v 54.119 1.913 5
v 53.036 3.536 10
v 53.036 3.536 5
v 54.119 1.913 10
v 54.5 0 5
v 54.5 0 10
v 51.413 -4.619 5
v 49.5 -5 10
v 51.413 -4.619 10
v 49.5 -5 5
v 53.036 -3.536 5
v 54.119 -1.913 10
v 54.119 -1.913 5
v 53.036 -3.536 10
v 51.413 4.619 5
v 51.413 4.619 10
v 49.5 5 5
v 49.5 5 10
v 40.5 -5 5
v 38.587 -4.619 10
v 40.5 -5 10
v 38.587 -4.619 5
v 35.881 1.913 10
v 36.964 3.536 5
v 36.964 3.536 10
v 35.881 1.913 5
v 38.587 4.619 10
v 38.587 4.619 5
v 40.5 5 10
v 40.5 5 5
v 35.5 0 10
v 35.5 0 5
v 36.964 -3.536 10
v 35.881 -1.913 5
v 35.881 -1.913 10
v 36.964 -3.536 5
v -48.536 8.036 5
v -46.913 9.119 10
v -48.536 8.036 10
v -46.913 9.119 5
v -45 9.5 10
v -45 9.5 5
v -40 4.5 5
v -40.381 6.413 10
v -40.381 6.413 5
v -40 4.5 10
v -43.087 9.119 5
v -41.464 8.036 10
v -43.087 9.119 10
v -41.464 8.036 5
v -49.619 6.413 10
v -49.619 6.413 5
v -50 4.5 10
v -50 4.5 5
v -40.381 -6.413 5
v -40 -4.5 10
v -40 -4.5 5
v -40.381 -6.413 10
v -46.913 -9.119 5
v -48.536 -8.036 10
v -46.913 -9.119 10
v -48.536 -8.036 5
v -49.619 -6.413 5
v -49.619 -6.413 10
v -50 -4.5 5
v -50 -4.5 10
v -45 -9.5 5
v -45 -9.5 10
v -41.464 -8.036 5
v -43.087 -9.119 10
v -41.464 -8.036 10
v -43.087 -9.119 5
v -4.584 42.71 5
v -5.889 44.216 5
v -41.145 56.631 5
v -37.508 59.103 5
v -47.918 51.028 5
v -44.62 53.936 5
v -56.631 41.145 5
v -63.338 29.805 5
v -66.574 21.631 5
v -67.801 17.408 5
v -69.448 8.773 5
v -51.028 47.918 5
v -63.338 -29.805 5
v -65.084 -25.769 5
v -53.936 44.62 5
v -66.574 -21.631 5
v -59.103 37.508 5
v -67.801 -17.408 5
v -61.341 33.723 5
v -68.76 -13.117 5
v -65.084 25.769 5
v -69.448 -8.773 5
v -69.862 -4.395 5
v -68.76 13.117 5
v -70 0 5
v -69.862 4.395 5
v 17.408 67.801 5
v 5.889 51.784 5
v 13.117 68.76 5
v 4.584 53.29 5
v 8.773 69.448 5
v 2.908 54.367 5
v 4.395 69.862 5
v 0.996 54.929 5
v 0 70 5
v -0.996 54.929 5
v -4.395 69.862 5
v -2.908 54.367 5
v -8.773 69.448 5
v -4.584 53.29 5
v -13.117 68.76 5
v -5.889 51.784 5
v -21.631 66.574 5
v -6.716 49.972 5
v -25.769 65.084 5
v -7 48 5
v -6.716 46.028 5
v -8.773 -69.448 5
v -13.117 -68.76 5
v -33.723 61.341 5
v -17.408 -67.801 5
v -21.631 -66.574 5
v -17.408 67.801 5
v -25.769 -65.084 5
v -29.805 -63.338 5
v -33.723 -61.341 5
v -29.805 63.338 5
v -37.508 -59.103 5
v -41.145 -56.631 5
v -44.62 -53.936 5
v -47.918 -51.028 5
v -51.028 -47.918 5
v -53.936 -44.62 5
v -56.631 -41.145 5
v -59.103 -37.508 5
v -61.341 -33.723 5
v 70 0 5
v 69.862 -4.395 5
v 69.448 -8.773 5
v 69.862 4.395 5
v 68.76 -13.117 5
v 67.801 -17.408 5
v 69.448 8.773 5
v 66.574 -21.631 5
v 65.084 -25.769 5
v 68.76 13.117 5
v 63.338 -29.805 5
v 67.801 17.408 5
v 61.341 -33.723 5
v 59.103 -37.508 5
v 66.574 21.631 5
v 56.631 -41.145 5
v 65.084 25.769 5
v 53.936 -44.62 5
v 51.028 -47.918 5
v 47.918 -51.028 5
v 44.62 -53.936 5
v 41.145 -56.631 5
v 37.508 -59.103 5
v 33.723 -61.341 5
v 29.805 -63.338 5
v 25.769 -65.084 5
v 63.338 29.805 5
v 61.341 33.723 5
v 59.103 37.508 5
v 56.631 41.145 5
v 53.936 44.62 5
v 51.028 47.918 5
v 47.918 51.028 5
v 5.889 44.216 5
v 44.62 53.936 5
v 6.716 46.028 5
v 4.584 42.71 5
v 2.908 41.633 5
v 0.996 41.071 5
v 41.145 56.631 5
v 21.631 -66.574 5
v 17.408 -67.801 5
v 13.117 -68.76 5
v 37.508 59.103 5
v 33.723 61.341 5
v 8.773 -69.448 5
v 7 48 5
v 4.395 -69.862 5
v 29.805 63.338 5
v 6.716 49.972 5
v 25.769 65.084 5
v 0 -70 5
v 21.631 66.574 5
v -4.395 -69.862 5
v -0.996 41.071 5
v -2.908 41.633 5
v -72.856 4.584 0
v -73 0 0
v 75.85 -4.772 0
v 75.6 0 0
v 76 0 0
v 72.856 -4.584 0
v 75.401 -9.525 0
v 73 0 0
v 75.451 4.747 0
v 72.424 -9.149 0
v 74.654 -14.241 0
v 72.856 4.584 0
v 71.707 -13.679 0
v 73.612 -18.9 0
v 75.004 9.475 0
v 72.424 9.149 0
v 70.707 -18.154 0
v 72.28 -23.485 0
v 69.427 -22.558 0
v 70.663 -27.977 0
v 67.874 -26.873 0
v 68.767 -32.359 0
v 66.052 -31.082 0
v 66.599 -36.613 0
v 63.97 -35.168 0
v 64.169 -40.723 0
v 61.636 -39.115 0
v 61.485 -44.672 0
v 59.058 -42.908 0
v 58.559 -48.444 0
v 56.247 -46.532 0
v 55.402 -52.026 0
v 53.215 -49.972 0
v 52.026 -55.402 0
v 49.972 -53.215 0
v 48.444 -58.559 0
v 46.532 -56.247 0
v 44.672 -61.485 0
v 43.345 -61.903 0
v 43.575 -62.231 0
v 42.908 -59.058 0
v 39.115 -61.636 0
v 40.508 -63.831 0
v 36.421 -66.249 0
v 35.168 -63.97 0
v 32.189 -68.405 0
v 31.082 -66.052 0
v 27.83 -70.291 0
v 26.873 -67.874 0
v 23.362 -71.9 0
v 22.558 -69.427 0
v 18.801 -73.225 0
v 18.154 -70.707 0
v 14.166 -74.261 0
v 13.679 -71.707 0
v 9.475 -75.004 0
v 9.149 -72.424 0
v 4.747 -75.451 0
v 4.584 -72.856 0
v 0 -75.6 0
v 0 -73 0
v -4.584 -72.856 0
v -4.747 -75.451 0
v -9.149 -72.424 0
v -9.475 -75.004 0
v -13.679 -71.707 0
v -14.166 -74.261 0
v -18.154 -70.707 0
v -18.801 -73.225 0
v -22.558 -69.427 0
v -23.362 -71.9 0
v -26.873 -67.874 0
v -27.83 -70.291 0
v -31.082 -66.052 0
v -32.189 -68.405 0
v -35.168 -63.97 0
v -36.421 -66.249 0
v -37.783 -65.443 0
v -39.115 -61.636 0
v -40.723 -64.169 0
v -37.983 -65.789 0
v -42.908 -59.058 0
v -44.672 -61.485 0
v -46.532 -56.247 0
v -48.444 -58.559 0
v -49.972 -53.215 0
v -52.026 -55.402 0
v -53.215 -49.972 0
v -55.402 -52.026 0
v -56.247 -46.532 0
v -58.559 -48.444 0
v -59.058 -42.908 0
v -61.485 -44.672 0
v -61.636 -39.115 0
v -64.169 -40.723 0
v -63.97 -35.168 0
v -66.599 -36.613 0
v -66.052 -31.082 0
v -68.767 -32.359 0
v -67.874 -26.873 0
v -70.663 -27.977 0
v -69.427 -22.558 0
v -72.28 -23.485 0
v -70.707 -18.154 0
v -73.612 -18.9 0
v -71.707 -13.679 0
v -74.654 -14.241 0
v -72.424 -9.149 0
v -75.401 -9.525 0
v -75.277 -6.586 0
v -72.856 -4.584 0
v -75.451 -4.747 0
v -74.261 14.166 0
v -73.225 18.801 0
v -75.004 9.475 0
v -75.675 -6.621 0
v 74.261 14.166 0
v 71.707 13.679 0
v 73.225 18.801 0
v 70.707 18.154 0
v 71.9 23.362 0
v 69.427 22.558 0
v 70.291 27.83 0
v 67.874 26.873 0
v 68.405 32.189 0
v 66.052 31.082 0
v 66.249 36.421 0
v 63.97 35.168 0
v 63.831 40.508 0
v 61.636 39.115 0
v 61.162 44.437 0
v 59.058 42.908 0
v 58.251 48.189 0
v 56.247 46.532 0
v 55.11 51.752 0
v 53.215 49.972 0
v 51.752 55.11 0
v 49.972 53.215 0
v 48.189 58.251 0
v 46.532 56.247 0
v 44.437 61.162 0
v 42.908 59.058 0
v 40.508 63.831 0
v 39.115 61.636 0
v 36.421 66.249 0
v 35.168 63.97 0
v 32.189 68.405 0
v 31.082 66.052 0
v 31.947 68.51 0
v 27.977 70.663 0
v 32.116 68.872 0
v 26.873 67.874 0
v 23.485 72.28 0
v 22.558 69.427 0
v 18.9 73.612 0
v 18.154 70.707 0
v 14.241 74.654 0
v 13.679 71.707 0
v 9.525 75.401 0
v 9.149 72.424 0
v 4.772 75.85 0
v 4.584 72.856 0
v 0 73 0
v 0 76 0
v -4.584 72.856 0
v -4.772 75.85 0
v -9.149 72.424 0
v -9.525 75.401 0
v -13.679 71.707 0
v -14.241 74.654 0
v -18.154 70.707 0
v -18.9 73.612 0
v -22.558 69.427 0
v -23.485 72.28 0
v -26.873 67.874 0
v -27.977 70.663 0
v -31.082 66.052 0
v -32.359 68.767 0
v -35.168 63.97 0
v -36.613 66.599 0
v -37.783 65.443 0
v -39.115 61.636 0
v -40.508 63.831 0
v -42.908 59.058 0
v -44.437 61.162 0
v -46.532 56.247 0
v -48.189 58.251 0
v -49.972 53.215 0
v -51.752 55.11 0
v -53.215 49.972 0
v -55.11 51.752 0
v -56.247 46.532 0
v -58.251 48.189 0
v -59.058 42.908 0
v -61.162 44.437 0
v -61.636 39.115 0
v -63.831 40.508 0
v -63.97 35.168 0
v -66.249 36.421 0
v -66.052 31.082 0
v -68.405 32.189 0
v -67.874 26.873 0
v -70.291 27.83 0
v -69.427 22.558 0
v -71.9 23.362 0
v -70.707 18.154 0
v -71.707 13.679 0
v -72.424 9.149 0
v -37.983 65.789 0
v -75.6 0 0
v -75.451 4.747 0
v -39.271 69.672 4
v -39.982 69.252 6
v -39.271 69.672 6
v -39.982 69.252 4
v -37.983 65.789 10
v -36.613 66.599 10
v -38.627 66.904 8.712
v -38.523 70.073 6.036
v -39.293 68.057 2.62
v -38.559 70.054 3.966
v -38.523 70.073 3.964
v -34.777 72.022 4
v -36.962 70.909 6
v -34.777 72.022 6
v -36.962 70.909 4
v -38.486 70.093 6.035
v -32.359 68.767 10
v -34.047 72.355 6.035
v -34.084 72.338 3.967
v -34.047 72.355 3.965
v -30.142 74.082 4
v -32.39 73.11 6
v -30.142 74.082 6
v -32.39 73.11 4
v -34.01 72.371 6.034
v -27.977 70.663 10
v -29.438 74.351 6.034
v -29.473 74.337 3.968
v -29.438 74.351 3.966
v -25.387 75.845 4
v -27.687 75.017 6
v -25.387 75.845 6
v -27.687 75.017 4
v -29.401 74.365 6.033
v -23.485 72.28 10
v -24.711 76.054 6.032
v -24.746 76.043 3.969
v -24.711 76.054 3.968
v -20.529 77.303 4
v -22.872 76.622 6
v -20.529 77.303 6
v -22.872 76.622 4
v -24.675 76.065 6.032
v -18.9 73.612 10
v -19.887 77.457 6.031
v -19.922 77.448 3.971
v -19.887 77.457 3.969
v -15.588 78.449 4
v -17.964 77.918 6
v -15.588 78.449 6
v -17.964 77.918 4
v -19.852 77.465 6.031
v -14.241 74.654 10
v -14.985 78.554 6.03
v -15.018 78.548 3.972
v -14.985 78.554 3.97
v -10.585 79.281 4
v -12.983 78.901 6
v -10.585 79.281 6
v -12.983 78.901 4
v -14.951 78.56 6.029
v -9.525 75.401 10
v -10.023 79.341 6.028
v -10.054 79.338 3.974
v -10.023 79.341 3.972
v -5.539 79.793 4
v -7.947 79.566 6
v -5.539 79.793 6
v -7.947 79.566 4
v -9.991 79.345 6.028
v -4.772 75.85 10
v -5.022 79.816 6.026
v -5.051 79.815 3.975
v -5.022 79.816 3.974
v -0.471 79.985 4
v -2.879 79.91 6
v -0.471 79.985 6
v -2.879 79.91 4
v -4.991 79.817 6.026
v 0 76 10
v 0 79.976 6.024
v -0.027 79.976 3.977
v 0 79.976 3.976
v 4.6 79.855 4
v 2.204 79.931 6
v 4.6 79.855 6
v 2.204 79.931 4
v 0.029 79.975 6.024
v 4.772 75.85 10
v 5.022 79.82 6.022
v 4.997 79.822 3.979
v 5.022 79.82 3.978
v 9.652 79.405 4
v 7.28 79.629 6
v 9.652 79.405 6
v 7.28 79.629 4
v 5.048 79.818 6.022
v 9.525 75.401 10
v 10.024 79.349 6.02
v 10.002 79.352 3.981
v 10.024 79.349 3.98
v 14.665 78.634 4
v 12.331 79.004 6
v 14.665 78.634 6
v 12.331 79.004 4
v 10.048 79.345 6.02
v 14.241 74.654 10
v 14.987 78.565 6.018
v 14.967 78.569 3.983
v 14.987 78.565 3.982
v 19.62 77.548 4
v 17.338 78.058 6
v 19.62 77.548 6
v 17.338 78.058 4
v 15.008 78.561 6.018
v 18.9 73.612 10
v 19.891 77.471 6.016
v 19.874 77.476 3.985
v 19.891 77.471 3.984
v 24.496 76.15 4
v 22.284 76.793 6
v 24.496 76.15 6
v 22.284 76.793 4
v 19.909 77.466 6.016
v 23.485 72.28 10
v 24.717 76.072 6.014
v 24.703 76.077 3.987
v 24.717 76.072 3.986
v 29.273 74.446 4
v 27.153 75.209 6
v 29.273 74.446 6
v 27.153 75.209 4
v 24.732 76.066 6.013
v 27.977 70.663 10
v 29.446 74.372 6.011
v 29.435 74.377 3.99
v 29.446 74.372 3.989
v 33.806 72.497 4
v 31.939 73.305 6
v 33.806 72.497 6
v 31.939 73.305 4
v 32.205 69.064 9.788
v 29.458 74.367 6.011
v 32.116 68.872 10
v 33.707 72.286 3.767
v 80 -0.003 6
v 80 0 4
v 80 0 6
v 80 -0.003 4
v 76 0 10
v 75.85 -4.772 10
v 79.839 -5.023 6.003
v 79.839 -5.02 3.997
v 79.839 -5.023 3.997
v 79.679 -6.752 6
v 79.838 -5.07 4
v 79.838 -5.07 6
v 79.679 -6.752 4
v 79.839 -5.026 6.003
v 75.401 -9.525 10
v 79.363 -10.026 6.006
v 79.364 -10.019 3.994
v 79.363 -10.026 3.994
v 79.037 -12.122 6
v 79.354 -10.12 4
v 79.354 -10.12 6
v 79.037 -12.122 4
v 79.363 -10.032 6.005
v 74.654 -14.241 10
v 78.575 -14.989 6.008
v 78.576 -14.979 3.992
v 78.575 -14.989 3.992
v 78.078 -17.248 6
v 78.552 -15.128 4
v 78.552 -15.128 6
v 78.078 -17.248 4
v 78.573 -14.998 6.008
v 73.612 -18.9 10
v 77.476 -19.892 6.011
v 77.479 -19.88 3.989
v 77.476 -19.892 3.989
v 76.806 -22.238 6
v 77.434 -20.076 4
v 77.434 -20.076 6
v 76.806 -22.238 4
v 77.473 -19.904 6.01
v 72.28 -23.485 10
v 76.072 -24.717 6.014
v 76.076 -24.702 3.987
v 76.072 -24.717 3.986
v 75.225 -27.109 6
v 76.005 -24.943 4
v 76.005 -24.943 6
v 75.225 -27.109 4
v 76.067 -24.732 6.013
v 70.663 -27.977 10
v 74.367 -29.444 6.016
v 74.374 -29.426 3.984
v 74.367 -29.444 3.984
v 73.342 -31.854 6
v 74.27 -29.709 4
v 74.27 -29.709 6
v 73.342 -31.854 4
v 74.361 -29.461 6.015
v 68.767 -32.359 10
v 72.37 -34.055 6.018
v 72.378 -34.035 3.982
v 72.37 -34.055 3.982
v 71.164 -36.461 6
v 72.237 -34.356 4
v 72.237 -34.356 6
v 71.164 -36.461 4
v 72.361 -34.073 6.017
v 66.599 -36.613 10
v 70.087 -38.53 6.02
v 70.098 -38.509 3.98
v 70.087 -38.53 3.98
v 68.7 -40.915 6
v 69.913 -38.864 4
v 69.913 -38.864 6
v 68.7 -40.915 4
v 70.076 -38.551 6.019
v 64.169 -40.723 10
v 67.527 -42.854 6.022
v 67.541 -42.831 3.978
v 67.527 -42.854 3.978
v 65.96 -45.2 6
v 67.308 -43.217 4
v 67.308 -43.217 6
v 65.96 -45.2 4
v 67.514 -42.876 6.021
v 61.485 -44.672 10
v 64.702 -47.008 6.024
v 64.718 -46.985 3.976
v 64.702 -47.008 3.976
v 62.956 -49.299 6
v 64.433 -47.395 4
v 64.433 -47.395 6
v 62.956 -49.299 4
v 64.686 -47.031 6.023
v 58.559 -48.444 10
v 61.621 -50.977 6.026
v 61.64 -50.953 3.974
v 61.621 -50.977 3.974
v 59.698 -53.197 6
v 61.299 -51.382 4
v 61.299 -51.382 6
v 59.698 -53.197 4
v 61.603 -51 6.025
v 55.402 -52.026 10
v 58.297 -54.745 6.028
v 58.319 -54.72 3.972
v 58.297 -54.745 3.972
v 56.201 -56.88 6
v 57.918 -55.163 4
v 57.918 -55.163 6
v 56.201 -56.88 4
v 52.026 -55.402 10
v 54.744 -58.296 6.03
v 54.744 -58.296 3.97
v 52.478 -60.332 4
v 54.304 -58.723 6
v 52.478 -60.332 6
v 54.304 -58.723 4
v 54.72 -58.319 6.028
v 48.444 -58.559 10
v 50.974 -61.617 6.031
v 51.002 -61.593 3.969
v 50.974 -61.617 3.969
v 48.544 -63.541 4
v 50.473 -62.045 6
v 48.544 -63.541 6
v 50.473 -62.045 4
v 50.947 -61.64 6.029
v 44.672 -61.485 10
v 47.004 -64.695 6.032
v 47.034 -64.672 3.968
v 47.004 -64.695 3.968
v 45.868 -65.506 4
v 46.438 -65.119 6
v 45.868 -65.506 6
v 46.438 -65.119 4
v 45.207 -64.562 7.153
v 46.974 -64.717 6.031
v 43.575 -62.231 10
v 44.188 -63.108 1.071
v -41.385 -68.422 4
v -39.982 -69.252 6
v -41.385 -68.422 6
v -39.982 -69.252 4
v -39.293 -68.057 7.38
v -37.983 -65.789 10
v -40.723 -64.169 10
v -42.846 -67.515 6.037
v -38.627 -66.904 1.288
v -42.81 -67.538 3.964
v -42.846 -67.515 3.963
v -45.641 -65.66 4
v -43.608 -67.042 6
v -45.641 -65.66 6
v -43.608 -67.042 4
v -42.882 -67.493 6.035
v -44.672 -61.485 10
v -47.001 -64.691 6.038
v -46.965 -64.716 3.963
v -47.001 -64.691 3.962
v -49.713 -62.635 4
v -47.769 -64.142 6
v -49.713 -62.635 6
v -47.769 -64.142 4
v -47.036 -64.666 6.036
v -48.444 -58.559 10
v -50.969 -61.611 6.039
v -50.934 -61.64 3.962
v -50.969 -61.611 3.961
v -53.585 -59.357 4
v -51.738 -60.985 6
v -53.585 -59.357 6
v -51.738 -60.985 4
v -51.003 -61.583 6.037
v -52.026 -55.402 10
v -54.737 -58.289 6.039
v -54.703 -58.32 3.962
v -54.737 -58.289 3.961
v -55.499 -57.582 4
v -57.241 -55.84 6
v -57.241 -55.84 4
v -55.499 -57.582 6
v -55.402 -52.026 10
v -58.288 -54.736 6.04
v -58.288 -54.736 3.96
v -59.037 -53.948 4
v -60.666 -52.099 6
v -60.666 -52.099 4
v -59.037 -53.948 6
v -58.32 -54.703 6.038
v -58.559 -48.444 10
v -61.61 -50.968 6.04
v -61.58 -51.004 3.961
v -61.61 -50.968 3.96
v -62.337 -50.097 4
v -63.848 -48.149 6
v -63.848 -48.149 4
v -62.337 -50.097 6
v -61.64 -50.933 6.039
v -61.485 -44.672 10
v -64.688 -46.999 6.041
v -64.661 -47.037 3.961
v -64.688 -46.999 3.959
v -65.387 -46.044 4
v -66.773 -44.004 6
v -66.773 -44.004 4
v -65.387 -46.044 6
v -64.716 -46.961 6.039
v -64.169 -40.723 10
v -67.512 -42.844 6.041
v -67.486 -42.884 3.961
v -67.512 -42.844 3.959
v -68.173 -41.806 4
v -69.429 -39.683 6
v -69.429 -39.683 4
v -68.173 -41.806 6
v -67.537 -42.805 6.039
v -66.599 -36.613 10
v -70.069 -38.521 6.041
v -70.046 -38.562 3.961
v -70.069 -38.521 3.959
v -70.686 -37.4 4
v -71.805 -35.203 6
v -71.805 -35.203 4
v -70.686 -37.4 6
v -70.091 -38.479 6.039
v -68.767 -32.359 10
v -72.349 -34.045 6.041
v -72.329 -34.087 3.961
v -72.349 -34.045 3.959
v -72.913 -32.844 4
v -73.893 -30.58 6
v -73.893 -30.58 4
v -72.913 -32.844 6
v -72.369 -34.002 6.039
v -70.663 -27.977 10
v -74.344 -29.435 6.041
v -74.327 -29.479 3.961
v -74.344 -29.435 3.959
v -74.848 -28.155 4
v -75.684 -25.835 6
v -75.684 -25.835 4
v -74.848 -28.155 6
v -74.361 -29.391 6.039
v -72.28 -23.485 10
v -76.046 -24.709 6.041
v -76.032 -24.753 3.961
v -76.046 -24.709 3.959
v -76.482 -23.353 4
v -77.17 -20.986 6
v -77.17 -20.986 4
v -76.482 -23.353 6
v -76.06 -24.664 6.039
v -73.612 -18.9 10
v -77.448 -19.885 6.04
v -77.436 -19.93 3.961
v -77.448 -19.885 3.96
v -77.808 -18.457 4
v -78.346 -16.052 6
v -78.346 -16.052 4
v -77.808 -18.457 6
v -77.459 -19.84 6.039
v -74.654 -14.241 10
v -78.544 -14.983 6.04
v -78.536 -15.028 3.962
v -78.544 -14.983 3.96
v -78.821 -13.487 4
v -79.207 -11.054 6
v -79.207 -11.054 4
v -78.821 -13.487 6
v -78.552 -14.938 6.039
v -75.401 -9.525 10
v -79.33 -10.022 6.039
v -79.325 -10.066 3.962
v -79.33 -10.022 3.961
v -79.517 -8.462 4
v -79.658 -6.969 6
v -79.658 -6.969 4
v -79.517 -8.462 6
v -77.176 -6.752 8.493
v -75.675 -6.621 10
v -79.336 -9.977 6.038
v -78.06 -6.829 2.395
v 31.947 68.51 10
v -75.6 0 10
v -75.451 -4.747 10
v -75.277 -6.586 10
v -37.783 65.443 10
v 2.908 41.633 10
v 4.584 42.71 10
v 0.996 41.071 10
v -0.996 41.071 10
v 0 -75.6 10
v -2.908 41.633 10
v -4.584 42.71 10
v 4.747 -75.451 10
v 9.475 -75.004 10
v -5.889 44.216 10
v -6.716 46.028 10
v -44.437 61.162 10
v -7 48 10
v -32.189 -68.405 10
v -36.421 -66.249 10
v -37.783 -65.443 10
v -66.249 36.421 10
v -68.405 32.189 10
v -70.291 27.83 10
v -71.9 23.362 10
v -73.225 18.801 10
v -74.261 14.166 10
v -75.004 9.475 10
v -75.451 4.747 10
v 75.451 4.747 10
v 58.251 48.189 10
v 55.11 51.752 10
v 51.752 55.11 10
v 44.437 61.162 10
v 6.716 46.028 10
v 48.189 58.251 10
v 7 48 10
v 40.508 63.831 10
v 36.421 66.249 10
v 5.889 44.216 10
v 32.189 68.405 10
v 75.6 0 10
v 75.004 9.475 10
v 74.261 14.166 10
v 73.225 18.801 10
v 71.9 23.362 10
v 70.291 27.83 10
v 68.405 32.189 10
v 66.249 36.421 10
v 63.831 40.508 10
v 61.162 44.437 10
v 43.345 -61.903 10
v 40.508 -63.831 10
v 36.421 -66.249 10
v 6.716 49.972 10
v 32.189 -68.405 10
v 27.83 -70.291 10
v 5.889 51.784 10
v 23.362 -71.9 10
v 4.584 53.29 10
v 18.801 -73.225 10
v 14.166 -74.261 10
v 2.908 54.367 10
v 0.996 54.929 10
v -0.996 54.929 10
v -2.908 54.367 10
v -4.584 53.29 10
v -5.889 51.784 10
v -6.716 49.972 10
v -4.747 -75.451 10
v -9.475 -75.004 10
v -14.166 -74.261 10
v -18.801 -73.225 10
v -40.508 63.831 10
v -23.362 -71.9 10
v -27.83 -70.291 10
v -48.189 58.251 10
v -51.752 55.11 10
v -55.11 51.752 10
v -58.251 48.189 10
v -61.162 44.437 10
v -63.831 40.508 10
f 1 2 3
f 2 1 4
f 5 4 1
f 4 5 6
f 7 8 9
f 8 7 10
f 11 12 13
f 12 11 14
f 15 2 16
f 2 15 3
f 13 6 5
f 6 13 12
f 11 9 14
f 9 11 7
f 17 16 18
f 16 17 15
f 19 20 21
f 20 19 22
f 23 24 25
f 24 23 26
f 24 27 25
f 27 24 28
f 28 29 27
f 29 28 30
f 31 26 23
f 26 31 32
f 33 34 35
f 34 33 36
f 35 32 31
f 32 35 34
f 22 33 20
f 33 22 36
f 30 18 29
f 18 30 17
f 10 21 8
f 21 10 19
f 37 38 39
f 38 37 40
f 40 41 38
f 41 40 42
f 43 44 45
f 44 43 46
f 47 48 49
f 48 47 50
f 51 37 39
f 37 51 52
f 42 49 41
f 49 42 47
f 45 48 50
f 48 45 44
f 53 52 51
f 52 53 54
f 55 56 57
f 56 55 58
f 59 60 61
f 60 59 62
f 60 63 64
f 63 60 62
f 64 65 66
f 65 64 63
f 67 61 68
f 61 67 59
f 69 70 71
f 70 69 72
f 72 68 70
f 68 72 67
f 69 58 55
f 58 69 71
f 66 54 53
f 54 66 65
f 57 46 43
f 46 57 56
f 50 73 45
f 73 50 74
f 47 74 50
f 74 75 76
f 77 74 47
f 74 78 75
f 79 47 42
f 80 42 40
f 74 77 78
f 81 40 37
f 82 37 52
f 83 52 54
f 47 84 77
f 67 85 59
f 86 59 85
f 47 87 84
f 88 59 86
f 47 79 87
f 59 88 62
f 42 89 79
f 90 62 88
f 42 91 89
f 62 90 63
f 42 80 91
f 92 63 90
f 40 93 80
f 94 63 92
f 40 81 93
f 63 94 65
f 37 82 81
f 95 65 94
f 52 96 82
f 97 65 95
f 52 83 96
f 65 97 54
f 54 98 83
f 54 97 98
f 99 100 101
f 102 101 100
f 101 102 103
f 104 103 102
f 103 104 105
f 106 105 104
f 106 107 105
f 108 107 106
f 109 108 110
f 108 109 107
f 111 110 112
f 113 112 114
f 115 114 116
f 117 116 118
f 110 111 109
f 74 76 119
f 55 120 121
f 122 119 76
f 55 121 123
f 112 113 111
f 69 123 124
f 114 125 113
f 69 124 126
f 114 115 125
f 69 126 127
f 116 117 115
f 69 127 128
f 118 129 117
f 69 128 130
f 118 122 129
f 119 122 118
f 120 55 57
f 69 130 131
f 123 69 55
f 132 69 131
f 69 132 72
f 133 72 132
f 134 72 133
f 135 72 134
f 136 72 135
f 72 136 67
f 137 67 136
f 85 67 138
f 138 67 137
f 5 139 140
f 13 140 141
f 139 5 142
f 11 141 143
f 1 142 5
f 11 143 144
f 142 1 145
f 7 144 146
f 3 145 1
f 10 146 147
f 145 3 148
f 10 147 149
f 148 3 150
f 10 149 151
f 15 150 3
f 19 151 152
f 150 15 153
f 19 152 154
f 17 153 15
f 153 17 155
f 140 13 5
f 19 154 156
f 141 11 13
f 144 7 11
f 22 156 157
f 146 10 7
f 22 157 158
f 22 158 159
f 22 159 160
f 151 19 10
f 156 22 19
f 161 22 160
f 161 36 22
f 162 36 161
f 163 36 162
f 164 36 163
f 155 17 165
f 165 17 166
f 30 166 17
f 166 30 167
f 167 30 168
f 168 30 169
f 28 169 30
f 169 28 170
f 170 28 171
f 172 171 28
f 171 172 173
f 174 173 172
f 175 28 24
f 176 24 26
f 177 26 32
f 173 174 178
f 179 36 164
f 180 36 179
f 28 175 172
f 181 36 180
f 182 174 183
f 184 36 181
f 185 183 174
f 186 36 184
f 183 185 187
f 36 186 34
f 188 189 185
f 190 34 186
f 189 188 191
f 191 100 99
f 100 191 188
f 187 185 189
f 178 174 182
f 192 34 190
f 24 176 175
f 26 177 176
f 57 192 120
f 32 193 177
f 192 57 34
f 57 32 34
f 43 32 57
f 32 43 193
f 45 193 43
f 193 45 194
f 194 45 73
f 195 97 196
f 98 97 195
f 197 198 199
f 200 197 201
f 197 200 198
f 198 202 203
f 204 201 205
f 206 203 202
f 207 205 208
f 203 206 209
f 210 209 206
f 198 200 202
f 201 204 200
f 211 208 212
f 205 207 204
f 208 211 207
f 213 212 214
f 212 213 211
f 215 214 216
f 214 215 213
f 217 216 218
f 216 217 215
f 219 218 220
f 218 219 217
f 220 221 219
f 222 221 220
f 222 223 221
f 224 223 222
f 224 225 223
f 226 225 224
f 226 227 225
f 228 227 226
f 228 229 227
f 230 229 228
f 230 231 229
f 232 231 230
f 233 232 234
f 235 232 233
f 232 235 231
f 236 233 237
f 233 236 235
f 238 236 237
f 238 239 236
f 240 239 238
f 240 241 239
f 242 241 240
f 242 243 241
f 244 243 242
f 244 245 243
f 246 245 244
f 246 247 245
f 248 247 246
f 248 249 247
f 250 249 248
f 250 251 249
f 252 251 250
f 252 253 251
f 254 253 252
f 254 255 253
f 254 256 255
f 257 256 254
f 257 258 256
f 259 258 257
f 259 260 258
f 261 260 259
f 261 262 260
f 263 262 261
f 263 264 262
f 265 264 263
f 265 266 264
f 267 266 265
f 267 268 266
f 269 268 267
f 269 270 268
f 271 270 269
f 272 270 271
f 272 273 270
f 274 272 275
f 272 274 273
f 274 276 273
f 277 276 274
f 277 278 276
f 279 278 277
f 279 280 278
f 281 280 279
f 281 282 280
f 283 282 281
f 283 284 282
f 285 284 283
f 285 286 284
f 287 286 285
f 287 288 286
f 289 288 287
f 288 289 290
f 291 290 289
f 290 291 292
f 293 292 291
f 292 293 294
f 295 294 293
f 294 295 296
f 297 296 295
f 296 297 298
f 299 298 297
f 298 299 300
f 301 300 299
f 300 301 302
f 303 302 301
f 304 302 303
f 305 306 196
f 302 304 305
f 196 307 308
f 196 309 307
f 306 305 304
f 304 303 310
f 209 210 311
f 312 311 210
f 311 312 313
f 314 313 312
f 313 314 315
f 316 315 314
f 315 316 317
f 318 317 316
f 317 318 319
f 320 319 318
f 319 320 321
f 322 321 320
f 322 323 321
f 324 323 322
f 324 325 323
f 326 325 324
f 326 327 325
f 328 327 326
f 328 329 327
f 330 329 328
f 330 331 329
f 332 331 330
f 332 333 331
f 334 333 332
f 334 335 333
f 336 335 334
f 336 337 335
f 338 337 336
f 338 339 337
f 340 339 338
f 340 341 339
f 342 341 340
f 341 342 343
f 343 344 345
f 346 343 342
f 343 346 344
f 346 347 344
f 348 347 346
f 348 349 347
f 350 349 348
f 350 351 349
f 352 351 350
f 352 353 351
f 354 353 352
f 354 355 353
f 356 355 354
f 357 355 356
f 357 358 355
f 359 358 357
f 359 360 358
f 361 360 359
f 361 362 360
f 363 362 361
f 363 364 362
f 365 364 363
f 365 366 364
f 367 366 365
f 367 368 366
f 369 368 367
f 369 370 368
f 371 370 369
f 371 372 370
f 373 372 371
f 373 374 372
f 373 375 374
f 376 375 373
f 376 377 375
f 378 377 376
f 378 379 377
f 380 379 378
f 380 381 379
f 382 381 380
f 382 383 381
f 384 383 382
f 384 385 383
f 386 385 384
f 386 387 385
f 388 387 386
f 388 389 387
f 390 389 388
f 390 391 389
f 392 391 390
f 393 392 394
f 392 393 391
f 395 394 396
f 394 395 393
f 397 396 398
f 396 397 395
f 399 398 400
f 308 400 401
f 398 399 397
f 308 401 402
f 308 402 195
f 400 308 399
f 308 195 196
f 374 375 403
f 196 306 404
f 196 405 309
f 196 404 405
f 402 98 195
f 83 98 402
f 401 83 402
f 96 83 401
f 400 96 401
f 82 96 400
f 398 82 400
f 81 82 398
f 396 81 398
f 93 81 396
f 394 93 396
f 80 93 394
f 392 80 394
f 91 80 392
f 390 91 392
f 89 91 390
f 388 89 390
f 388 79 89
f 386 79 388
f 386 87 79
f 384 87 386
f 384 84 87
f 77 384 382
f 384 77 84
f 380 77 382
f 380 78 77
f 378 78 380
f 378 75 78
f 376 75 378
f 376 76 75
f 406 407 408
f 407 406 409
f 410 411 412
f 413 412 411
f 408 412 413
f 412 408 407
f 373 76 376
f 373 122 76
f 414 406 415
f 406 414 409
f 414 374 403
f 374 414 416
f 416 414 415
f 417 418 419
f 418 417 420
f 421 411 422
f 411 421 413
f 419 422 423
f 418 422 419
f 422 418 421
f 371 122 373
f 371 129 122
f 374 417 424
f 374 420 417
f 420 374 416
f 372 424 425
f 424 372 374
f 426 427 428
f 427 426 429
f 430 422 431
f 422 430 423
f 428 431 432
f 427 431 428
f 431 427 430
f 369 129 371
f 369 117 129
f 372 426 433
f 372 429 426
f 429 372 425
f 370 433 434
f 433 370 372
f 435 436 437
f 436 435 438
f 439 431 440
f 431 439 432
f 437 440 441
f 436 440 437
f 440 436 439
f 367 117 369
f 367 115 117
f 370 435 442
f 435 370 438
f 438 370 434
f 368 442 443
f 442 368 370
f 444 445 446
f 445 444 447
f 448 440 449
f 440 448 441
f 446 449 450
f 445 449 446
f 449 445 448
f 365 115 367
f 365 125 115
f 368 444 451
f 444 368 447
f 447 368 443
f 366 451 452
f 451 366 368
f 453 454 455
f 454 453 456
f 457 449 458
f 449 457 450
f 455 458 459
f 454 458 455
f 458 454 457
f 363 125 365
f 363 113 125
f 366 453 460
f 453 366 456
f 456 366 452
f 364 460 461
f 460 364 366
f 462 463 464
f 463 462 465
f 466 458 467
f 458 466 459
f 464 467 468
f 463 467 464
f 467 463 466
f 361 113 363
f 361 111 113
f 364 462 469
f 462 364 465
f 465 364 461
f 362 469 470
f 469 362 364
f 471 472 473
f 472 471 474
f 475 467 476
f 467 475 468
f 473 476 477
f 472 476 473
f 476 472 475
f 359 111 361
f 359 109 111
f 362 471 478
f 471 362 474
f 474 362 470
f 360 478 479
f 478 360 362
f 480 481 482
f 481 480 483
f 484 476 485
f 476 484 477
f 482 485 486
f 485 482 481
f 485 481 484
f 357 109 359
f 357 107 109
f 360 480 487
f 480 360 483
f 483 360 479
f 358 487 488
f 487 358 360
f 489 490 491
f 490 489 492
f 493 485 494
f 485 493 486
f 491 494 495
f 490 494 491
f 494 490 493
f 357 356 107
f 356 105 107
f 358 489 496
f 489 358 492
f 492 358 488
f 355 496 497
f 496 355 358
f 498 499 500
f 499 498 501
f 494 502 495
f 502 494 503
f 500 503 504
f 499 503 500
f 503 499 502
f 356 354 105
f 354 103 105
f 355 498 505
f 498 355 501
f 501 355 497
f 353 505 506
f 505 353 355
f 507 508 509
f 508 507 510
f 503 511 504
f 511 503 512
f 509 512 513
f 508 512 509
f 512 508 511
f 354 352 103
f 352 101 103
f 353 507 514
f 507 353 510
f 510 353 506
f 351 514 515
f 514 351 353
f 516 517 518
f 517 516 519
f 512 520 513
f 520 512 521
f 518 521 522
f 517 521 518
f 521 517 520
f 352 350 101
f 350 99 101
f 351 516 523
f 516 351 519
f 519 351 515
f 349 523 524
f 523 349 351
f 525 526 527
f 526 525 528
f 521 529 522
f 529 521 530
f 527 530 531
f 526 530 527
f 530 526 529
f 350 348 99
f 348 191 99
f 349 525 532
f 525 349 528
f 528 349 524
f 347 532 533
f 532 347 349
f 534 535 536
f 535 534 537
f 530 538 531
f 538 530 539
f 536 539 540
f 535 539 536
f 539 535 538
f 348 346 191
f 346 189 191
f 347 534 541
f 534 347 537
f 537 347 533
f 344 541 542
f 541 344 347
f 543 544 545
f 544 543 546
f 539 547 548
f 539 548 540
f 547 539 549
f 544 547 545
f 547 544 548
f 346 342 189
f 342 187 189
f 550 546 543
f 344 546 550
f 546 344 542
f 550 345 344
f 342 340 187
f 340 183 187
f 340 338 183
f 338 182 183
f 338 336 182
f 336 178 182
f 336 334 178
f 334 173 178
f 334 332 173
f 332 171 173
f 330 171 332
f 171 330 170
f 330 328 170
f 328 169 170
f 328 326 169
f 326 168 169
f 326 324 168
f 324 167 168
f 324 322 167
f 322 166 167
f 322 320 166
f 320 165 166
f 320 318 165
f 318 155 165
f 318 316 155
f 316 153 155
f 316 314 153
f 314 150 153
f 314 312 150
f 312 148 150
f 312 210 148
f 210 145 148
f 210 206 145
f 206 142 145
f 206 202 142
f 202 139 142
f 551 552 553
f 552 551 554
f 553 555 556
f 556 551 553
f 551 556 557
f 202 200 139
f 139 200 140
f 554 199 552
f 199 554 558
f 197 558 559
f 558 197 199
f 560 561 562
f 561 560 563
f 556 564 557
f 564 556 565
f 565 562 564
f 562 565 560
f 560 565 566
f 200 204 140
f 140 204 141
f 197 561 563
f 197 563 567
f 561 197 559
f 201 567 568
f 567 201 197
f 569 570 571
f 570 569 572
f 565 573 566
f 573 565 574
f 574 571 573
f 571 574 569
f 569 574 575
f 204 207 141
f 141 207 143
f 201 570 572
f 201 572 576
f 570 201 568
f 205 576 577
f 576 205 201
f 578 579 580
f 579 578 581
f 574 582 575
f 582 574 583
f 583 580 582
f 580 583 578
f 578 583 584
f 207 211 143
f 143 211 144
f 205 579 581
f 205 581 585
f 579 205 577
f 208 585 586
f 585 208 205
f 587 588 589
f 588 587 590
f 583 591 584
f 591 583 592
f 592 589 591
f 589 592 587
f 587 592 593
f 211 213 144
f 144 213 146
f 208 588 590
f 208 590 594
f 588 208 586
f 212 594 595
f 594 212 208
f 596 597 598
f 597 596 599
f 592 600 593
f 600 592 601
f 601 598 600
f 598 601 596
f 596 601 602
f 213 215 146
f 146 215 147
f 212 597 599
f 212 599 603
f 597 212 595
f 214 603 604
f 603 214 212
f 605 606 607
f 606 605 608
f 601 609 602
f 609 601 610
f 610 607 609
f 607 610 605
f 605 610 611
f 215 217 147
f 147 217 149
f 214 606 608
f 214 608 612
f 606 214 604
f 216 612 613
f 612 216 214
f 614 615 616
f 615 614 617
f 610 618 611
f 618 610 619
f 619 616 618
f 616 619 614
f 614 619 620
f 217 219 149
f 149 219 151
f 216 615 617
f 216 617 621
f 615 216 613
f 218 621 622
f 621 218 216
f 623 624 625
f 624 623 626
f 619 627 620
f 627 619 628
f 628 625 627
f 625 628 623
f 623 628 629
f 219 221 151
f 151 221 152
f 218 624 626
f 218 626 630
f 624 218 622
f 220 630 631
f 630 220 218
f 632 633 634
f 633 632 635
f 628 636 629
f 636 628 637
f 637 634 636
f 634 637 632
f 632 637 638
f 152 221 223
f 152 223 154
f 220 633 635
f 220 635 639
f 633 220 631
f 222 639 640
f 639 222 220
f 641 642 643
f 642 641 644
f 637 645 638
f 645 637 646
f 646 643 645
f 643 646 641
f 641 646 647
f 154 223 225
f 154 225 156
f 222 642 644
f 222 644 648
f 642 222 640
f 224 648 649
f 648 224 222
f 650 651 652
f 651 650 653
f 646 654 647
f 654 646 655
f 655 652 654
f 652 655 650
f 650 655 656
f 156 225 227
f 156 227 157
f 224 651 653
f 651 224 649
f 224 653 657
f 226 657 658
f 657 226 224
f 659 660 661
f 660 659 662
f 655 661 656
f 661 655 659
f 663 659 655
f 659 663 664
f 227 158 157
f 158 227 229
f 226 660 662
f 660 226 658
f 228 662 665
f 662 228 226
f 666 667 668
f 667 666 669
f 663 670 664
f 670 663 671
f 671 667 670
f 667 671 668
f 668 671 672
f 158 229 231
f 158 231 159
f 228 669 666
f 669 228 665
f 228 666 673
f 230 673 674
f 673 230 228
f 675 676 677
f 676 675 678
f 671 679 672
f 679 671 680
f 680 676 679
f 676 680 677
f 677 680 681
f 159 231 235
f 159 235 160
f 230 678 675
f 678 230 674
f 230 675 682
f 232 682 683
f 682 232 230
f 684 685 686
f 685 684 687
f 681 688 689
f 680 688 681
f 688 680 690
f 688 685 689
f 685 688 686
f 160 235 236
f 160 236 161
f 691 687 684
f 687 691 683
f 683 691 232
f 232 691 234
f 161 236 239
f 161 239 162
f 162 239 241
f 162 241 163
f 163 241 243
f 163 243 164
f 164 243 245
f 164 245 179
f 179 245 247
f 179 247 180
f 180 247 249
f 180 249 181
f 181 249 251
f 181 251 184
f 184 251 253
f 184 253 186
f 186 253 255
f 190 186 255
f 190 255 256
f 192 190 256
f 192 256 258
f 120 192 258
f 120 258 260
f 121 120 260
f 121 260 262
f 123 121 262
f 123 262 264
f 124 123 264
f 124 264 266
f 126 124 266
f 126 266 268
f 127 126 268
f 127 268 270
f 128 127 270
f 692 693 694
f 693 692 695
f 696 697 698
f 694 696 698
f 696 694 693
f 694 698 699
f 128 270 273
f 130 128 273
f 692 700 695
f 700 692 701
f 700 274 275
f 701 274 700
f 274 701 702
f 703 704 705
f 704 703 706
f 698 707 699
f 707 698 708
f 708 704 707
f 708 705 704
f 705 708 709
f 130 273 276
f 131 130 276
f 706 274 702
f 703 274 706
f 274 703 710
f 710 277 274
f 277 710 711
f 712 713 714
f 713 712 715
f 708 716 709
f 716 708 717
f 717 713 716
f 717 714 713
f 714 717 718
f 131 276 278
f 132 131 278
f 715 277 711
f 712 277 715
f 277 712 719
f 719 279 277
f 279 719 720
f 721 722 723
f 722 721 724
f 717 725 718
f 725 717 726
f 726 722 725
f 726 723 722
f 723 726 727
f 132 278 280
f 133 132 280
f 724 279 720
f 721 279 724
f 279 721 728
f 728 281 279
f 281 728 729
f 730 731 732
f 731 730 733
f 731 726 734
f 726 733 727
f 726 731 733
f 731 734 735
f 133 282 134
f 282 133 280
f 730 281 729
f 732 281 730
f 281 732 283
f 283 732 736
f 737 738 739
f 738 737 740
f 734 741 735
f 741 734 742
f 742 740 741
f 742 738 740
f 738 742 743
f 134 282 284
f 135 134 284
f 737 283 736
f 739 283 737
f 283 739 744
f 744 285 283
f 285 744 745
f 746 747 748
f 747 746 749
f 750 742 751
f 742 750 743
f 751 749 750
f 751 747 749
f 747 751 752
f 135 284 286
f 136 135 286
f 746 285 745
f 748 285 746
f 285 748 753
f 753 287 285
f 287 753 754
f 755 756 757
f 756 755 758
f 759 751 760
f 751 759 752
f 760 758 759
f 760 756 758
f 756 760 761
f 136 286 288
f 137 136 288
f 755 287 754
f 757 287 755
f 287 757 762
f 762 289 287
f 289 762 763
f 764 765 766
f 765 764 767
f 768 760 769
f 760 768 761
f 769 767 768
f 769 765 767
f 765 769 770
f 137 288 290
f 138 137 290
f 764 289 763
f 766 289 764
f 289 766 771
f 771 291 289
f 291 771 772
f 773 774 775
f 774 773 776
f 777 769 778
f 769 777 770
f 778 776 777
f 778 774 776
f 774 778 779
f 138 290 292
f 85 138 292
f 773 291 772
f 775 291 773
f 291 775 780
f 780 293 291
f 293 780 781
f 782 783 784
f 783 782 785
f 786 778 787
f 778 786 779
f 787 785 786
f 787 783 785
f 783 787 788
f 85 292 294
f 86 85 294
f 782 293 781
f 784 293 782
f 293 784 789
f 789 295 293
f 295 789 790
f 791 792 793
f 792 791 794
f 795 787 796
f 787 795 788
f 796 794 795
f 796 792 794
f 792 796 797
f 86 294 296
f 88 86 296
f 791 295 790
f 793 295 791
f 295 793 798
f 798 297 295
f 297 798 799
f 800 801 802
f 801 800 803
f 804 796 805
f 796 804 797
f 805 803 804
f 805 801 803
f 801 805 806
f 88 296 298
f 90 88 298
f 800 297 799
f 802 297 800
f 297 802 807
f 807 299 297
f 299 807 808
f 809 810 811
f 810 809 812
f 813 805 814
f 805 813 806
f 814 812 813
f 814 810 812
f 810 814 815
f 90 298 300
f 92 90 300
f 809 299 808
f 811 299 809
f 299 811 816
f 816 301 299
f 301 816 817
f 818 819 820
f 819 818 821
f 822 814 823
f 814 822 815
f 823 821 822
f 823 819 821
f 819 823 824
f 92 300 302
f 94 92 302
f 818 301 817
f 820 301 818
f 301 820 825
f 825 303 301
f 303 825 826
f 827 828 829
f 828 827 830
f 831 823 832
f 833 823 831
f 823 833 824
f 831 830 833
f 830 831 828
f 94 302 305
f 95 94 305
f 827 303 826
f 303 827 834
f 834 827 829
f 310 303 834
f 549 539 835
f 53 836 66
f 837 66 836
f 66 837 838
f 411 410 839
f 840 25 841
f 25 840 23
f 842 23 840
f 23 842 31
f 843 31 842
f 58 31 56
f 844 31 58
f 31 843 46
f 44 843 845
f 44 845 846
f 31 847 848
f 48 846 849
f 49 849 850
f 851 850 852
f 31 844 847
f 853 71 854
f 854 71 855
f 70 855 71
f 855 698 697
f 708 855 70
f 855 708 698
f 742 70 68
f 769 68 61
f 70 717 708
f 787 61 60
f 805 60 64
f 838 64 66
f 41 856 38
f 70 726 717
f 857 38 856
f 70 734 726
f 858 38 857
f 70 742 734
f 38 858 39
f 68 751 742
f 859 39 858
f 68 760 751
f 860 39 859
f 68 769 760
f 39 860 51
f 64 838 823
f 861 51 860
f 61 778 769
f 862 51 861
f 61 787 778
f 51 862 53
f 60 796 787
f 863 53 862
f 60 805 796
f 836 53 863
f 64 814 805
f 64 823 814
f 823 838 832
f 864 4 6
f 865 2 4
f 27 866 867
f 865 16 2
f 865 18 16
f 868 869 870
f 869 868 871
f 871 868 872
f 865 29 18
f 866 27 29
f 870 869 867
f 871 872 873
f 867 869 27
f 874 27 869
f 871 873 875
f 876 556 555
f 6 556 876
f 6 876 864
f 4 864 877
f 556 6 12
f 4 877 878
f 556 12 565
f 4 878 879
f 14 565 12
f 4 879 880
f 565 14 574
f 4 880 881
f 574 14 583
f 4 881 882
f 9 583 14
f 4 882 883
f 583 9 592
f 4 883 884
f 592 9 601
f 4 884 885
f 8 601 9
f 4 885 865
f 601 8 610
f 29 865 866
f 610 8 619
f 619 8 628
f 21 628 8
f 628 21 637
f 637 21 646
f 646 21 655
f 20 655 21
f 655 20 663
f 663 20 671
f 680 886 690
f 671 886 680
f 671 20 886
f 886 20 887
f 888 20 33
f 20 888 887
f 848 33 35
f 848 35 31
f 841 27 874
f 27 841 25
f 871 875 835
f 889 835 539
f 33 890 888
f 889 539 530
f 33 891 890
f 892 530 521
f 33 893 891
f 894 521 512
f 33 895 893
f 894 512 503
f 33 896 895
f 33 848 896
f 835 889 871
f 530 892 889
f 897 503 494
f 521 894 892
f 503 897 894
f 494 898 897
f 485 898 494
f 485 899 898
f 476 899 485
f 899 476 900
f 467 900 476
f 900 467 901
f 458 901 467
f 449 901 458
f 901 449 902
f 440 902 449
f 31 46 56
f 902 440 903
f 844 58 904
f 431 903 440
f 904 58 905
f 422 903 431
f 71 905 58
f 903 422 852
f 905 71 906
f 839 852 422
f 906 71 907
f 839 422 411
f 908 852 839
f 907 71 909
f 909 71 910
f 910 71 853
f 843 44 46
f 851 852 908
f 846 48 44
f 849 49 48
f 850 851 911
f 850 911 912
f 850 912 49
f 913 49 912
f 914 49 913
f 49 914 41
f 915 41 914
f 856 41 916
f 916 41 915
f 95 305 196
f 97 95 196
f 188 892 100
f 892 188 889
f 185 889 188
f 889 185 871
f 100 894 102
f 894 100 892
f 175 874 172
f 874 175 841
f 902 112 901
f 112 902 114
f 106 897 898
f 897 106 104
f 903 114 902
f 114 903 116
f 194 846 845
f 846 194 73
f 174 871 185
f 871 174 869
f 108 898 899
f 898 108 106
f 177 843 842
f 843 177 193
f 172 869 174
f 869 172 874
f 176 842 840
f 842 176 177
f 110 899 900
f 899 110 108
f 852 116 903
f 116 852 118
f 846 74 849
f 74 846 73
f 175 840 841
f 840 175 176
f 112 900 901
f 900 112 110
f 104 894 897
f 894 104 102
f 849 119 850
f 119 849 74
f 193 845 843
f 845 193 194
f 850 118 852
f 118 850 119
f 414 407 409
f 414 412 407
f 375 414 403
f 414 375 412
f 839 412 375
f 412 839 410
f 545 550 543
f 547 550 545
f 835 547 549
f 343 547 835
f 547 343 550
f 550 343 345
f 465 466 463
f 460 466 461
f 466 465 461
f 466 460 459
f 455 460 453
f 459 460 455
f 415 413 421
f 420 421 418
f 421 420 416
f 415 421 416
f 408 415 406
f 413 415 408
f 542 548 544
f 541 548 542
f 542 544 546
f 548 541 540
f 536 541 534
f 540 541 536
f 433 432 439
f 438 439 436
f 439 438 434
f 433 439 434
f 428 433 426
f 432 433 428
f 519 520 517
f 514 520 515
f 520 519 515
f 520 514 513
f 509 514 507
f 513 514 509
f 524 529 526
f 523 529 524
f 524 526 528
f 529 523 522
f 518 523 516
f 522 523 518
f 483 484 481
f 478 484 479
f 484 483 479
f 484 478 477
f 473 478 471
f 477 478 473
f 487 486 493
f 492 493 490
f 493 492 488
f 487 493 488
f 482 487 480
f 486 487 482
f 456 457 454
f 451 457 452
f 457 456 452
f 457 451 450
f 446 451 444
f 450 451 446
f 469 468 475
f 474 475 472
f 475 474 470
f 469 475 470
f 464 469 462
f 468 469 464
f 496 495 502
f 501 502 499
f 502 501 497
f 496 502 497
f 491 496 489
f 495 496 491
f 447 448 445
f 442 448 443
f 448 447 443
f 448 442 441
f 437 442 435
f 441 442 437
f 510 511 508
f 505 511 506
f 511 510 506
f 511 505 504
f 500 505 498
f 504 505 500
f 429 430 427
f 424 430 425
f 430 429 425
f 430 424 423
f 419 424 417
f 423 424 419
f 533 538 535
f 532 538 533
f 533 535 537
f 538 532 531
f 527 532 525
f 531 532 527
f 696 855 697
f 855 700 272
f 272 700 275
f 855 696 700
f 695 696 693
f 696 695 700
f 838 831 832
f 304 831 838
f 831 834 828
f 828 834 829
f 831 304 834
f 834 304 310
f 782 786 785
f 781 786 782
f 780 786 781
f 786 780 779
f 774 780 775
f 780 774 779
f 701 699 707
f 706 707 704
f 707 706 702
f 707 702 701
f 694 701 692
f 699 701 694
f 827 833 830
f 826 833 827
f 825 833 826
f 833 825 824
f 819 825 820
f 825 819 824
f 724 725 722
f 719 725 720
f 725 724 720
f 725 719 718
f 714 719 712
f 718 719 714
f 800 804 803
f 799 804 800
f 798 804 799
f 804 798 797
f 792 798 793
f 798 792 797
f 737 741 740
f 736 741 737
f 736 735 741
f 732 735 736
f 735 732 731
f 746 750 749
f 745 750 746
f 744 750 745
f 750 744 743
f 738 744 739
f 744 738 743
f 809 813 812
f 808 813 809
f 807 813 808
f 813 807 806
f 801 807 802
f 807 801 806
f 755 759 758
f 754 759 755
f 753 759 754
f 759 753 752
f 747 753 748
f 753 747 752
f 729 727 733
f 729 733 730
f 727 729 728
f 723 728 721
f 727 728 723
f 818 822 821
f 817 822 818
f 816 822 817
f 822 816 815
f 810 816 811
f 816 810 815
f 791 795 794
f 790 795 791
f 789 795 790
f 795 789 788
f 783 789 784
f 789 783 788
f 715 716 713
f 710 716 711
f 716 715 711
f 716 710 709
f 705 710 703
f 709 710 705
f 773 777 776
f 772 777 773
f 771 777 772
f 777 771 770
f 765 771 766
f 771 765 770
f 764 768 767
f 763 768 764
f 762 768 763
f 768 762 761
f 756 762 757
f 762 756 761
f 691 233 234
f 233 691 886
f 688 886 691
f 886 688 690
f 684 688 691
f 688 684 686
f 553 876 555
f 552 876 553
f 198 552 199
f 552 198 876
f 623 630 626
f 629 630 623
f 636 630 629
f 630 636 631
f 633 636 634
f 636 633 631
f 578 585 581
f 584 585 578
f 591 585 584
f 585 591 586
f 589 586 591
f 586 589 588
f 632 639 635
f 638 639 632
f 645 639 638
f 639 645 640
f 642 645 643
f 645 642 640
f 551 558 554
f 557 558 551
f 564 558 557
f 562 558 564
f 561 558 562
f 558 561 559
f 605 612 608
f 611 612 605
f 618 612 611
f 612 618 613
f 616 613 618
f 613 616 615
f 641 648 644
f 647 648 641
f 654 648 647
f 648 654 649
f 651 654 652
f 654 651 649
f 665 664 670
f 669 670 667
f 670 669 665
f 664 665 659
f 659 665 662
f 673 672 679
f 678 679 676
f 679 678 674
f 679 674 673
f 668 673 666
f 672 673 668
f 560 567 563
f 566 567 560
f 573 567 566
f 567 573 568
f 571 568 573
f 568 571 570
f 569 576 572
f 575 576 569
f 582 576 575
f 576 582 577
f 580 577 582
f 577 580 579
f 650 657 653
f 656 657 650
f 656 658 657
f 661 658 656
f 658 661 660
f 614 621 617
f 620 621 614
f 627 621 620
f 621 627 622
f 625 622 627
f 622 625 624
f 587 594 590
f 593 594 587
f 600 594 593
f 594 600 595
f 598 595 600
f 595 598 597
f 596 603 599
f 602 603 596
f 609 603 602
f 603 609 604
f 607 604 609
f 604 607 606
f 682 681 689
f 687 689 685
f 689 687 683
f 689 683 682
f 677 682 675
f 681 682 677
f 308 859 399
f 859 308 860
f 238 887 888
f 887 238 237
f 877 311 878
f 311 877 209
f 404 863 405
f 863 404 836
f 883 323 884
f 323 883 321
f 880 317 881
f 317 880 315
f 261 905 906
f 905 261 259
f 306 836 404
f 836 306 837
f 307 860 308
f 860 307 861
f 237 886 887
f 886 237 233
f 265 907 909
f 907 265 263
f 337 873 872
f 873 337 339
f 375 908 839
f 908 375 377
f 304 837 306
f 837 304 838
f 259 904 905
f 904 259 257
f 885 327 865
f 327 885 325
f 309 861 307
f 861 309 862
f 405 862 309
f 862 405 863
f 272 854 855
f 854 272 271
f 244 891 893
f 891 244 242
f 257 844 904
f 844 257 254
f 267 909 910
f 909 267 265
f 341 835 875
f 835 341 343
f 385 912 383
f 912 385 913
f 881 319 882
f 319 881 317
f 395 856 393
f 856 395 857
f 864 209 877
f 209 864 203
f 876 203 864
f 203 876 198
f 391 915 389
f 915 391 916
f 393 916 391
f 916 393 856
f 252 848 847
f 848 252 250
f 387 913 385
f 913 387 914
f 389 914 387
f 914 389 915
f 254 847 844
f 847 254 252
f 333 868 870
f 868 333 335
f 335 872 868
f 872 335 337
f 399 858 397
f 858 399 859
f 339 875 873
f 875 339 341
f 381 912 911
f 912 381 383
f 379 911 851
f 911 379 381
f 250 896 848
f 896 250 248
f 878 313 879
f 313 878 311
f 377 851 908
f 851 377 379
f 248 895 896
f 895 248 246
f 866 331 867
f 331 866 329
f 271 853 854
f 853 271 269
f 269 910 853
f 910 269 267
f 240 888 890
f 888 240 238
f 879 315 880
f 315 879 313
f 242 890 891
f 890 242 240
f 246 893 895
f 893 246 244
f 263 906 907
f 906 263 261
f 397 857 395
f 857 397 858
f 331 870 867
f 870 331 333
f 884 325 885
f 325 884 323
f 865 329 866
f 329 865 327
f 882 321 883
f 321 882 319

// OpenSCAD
dp = 160;
rp = dp/2; // diameter of the plate
tp = 2; // thickness of the plate

af = 4; // fillet thickness

module screw_slot(l) {
    large = 100;
    ds = 10; // the diameter of the screw head through hole
    translate([+l/2,0,0]) cylinder(d=ds, h=large, center=true);
    translate([-l/2,0,0]) cylinder(d=ds, h=large, center=true);
    cube([l,ds,large], center=true);
}

module ring_wedge(ro, rth, h) {
    ri = ro-rth;
    wd = 1;
    
    rotate_extrude($fn=100) polygon([
        [ri, 0], [ro, 0],
        [ro-(rth-wd)/2, h], [ri+(rth-wd)/2, h]
    ]);
}

* mirror([0,0,1]) for(r=[71, 50, 25]) {
    ring_wedge(ro=r, rth=10,h=6);
}

module full_perimeter_wedge() {
    difference() {
        rotate_extrude($fn=100) polygon([
            [0, 0], [0,tp+af*2], 
            [rp-af, tp+af*2], [rp, tp+af], [rp, af], [rp-af, 0],
            [rp-7, 0], [rp-10, 5], [0, 5]
        ]);
        translate([90/2,0,0]) screw_slot(l=9);
        translate([-90/2,0,0]) rotate([0,0,90]) screw_slot(l=9);
        
        translate([0,48,0]) cylinder(h=100, d=14, center=true);
    }
}

intersection() {
    full_perimeter_wedge();
    
    // wedge mask
    union() {
        large = 100;
        rotate_extrude($fn=100) 
            polygon([
                [0, -large], [rp-af-0.4, -large], 
                [rp-af-0.4, +large], [0, +large]
            ]);
        for(deg=[0,120,240]) {
            rotate([0,0,deg+65]) rotate_extrude(angle=55, $fn=100) 
                polygon([
                    [0,  -large], [rp, -large], 
                    [rp, large,], [0,  large]
                ]);
        }
    }
}
    
